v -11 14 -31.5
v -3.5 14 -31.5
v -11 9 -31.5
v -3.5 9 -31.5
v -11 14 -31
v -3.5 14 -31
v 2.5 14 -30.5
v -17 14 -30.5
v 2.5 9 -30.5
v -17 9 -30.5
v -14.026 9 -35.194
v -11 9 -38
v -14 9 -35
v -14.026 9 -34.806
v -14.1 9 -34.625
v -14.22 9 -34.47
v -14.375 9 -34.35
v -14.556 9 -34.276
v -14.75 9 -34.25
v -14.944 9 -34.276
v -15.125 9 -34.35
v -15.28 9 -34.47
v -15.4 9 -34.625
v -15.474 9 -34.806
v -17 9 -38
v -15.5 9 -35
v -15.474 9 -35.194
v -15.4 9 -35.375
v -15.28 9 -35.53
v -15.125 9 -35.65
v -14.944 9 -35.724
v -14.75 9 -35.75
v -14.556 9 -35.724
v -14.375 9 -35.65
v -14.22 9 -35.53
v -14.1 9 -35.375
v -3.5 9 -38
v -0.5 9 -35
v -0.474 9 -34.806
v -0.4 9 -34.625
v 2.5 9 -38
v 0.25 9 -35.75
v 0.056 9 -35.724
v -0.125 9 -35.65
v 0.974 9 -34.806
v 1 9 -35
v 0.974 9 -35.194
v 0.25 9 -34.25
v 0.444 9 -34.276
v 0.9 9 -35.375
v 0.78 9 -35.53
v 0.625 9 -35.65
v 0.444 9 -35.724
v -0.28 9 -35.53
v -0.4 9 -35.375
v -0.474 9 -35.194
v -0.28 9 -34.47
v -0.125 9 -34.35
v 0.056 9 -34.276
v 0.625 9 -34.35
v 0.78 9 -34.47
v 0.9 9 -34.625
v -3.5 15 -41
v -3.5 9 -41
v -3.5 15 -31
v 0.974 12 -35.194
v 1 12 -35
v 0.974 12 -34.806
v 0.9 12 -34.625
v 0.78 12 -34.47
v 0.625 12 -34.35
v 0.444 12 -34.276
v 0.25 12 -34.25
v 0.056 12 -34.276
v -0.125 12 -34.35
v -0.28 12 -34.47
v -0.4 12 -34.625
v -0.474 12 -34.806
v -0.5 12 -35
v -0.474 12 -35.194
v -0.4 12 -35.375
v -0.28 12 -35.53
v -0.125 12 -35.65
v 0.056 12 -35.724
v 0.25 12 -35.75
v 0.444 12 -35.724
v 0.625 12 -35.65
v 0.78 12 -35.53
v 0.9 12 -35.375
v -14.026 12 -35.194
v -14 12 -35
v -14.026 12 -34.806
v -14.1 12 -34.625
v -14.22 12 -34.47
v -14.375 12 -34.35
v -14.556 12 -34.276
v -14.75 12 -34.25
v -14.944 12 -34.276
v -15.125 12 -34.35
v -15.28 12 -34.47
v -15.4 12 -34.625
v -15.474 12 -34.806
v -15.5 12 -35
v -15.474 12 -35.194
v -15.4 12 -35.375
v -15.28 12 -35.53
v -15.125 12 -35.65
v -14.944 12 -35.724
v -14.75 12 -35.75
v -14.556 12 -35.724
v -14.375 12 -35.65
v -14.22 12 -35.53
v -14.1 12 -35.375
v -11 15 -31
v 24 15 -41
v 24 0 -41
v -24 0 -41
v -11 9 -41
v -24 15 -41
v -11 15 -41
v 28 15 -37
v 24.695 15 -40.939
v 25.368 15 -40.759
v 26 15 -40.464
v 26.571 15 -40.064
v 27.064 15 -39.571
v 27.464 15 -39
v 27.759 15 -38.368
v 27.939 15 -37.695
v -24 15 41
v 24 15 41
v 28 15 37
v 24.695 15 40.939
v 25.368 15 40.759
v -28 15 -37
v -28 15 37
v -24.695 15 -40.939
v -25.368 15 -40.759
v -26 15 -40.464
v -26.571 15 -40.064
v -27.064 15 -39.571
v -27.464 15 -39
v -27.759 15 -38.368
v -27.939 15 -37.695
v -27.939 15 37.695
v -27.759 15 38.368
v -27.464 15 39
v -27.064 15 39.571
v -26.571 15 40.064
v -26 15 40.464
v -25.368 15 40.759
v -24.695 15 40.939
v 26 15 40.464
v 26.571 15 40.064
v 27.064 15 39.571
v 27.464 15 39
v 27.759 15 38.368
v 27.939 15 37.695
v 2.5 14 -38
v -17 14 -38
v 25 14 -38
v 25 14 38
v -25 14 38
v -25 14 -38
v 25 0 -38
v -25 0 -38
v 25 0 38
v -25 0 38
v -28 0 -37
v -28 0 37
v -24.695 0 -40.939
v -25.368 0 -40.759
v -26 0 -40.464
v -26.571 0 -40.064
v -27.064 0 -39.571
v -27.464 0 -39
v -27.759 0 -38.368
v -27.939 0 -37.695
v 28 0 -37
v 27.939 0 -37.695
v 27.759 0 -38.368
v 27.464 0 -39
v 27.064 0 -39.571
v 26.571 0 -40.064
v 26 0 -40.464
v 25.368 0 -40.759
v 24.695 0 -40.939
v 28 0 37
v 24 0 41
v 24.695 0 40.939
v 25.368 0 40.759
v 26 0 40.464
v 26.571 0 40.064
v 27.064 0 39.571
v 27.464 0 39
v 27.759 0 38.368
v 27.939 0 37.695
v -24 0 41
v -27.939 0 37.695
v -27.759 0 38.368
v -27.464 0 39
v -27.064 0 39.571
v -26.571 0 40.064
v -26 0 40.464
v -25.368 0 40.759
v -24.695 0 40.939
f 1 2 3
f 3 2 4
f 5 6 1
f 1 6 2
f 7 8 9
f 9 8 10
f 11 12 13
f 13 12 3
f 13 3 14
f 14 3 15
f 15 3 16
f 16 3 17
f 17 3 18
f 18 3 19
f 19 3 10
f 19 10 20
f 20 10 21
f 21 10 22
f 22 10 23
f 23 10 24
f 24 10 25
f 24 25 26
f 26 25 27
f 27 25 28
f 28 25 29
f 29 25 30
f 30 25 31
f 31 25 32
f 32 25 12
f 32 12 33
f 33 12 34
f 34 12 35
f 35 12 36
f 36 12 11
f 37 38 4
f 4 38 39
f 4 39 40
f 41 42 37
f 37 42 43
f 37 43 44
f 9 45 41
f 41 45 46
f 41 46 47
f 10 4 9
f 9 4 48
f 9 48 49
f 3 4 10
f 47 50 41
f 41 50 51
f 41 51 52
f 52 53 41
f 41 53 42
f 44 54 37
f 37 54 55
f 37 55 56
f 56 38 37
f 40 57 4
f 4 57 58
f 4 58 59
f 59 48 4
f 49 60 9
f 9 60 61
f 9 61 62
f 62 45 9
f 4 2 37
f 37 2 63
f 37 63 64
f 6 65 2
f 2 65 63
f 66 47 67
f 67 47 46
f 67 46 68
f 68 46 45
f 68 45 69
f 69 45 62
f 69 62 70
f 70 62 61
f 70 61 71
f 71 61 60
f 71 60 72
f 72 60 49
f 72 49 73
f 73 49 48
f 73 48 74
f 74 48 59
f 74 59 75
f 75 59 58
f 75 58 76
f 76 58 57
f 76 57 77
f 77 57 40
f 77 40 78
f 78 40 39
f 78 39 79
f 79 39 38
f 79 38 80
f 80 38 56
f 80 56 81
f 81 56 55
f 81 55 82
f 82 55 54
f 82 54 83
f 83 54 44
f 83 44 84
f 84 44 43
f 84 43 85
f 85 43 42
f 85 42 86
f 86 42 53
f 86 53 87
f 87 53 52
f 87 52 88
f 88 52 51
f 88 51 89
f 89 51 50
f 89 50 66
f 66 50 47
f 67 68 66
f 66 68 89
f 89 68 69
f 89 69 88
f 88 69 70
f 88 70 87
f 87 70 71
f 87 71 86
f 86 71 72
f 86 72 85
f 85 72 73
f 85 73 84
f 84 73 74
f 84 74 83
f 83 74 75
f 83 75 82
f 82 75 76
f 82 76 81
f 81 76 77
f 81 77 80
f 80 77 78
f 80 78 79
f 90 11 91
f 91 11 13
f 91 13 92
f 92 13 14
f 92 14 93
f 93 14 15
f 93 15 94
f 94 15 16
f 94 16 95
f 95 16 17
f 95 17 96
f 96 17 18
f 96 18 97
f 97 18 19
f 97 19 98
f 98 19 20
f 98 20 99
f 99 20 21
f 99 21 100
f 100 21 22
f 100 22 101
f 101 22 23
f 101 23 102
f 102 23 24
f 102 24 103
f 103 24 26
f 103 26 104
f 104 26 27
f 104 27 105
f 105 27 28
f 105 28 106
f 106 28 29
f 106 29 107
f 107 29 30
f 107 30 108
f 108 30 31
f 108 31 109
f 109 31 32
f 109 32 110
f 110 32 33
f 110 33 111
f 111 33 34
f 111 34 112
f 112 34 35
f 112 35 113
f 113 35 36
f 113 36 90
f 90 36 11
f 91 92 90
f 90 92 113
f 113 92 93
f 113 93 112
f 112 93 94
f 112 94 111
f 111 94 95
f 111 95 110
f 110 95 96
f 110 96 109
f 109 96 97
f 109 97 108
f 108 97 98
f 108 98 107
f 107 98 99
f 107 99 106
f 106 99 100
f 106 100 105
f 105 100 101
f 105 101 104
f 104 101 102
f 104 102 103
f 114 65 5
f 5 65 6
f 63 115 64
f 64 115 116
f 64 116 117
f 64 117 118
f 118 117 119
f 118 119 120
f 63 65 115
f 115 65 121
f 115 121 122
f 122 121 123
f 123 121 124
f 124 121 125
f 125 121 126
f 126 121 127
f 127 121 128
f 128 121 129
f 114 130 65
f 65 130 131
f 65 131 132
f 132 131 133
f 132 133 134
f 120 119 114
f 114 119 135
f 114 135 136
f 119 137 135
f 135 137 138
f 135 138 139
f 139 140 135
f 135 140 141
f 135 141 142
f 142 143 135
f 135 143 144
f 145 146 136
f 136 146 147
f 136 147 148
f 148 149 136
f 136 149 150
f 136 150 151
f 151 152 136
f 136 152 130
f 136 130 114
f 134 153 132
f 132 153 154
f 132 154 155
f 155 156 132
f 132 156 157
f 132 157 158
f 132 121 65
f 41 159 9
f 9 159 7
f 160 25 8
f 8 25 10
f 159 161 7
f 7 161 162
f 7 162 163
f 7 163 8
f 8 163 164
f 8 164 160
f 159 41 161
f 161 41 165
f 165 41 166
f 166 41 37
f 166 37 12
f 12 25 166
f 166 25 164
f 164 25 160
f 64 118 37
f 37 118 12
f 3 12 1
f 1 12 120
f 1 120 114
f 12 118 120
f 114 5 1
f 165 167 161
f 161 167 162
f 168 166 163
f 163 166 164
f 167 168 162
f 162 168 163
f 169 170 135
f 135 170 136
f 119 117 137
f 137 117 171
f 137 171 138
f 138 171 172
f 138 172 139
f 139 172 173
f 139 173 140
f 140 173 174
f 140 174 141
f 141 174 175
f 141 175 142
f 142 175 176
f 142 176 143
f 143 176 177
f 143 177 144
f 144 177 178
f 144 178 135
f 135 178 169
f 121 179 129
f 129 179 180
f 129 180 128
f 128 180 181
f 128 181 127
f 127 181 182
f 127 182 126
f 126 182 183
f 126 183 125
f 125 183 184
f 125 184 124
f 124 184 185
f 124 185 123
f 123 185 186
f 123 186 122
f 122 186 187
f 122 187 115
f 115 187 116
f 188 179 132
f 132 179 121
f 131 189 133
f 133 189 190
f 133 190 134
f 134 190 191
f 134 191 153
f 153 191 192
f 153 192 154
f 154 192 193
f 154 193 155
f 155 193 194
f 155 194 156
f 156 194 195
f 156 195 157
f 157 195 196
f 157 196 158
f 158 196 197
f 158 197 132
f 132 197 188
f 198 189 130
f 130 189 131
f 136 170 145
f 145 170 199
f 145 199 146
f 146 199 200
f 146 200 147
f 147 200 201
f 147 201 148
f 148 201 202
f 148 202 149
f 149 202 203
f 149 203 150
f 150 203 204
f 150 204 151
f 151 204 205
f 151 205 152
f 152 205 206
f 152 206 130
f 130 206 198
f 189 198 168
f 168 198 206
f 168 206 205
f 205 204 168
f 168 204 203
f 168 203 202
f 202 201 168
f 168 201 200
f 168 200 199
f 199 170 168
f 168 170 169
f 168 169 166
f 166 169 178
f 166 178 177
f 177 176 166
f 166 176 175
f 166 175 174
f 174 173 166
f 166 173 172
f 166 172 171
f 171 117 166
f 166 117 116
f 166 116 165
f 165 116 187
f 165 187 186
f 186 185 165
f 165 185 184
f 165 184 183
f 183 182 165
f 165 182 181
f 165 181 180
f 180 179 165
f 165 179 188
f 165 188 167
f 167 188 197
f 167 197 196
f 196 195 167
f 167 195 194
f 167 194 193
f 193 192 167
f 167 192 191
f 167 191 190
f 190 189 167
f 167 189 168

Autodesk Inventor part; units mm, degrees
ref_plane "YZ Plane" through (0, 0, 0) normal (1, 0, 0) x (0, 1, 0)
ref_plane "XZ Plane" through (0, 0, 0) normal (0, 1, 0) x (-1, 0, 0)
ref_plane "XY Plane" through (0, 0, 0) normal (0, 0, 1) x (1, 0, 0)
sketch "Boceto1" plane through (0, 0, 0) normal (0, 1, 0) x (-1, 0, 0)
  point P0 (0, 0)
sketch "Boceto2" plane through (0, 0, 0) normal (0, 1, 0) x (-1, 0, 0)
  line L0 (-25, 38) -> (25, 38)
  line L1 (25, 38) -> (25, -38)
  line L2 (25, -38) -> (-25, -38)
  line L3 (-25, -38) -> (-25, 38)
  line L4 (-25, 38) -> (25, -38) construction
  line L5 (25, 38) -> (-25, -38) construction
  line L6 (28, -37) -> (28, 37)
  line L7 (24, 41) -> (-24, 41)
  line L8 (-28, 37) -> (-28, -37)
  line L9 (-24, -41) -> (24, -41)
  arc A0 (28, 37) -> (24, 41) centre (24, 37) ccw
  arc A1 (-24, 41) -> (-28, 37) centre (-24, 37) ccw
  arc A2 (-28, -37) -> (-24, -41) centre (-24, -37) ccw
  arc A3 (24, -41) -> (28, -37) centre (24, -37) ccw
  point P0 (0, 0)
  dimension "d0" = 50
  dimension "d1" = 76
  dimension "d2" = 3
  dimension "d3" = 4
extrude "Extrusión1" add sketch "Boceto2" along normal blind 14
sketch "Boceto3" plane through (0, 14, 0) normal (0, 1, 0) x (1, 0, 0)
  arc A0 (-28, -37) -> (-24, -41) centre (-24, -37) ccw projected
  line L0 (-24, -41) -> (24, -41) projected
  arc A1 (24, -41) -> (28, -37) centre (24, -37) ccw projected
  line L1 (28, -37) -> (28, 37) projected
  arc A2 (28, 37) -> (24, 41) centre (24, 37) ccw projected
  line L2 (24, 41) -> (-24, 41) projected
  arc A3 (-24, 41) -> (-28, 37) centre (-24, 37) ccw projected
  line L3 (-28, 37) -> (-28, -37) projected
  line L4 (25, -38) -> (-25, -38) projected
  line L5 (-25, -38) -> (-25, 38) projected
  line L6 (-25, 38) -> (25, 38) projected
  line L7 (25, 38) -> (25, -38) projected
  point P0 (0, 0)
extrude "Extrusión2" add sketch "Boceto3" along normal blind 1 contours L3 A3 L2 A2 L1 A1 L0 A0 | L4 L5 L6 L7
sketch "Boceto4" plane through (-25, 0, -38) normal (0, 0, 1) x (1, 0, 0)
  line L0 (0, 0) -> (50, 0) projected
  line L1 (50, 0) -> (50, 14) projected
  line L2 (0, 14) -> (50, 14) projected
  line L3 (0, 0) -> (0, 14) projected
  line L4 (0, 14) -> (10, 14)
  line L5 (10, 14) -> (14, 14)
  line L6 (14, 14) -> (14, 9)
  line L7 (14, 9) -> (10, 9)
  line L8 (10, 9) -> (10, 14)
  line L9 (14, 9) -> (21.5, 9)
  line L10 (21.5, 9) -> (21.5, 14)
  line L11 (21.5, 14) -> (14, 14)
  line L12 (14, 14) -> (14, 9)
  point P0 (25, 0)
  dimension "d8" = 10
  dimension "d9" = 4
  dimension "d10" = 5
  dimension "d11" = 7.5
  dimension "d12" = 5
extrude "Extrusión3" cut sketch "Boceto4" against normal through all contours L10 L9 L6 L2
sketch "Boceto5" plane through (-25, 0, -38) normal (0, 0, 1) x (1, 0, 0)
  line L0 (21.5, 14) -> (21.5, 9) projected
  line L1 (21.5, 9) -> (14, 9) projected
  line L2 (14, 9) -> (14, 14) projected
  line L3 (0, 14) -> (14, 14) projected
  line L4 (0, 0) -> (0, 14) projected
  line L5 (0, 0) -> (50, 0) projected
  line L6 (50, 0) -> (50, 14) projected
  line L7 (21.5, 14) -> (50, 14) projected
  line L8 (14, 9) -> (8, 9)
  line L9 (8, 9) -> (8, 14)
  line L10 (8, 14) -> (14, 14)
  line L11 (14, 14) -> (14, 9)
  line L12 (21.5, 14) -> (27.5, 14)
  line L13 (27.5, 14) -> (27.5, 9)
  line L14 (27.5, 9) -> (21.5, 9)
  line L15 (21.5, 9) -> (21.5, 14)
  point P0 (25, 0)
  dimension "d15" = 6
  dimension "d16" = 6
extrude "Extrusión4" add sketch "Boceto5" along normal blind 7 contours L7 L13 L14 L0 | L8 L9 L3 L2
sketch "Boceto6" plane through (0, 14, 0) normal (0, -1, 0) x (1, 0, 0)
  line L0 (-3.5, -41) -> (-3.5, -31) projected
  line L1 (-3.5, -31) -> (2.5, -31) projected
  line L2 (2.5, -31) -> (2.5, -38) projected
  line L3 (2.5, -38) -> (25, -38) projected
  line L4 (25, -38) -> (25, 38) projected
  line L5 (25, 38) -> (-25, 38) projected
  line L6 (-25, 38) -> (-25, -38) projected
  line L7 (-25, -38) -> (-17, -38) projected
  line L8 (-17, -38) -> (-17, -31) projected
  line L9 (-17, -31) -> (-11, -31) projected
  line L10 (-11, -31) -> (-11, -41) projected
  line L11 (-3.5, -41) -> (-11, -41) projected
  line L12 (-3.5, -31) -> (-11, -31)
  point P0 (0, 0)
extrude "Extrusión5" cut sketch "Boceto6" against normal blind 7 contours L11 L10 L12 L0
sketch "Boceto7" plane through (-3.5, 9, -38) normal (0, -1, 0) x (1, 0, 0)
  line L0 (-7.5, 0) -> (-13.5, 0) projected
  line L1 (-7.5, 0) -> (-7.5, 7) projected
  line L2 (-13.5, 7) -> (-7.5, 7) projected
  line L3 (-13.5, 0) -> (-13.5, 7) projected
  line L4 (6, 0) -> (0, 0) projected
  line L5 (6, 0) -> (6, 7) projected
  line L6 (0, 7) -> (6, 7) projected
  line L7 (0, 0) -> (0, 7) projected
  circle A0 centre (-11.25, 3) radius 0.75
  circle A1 centre (3.75, 3) radius 0.75
  point P0 (3.5, 38)
  dimension "d21" = 1.5
  dimension "d22" = 1.5
  dimension "d23" = 15
  dimension "d24" = 2.25
  dimension "d25" = 2.25
  dimension "d30" = 4
  dimension "d31" = 3
  dimension "d32" = 3
  dimension "d33" = 4
extrude "Extrusión6" cut sketch "Boceto7" against normal blind 3 contours A0 | A1
sketch "Boceto8" plane through (-25, 0, -31) normal (0, 0, 1) x (1, 0, 0)
  line L0 (14, 9) -> (14, 14) projected
  line L1 (8, 14) -> (14, 14) projected
  line L2 (8, 14) -> (8, 9) projected
  line L3 (8, 9) -> (14, 9) projected
  line L4 (27.5, 9) -> (27.5, 14) projected
  line L5 (21.5, 14) -> (27.5, 14) projected
  line L6 (21.5, 14) -> (21.5, 9) projected
  line L7 (21.5, 9) -> (27.5, 9) projected
  line L8 (14, 9) -> (8, 9) projected
  line L9 (14, 9) -> (21.5, 9)
  line L10 (21.5, 9) -> (21.5, 14)
  line L11 (21.5, 14) -> (14, 14)
  line L12 (14, 14) -> (14, 9)
  point P0 (25, 0)
extrude "Extrusión7" add sketch "Boceto8" along normal mid plane 1
properties part number "Pieza2_3DPrint"
